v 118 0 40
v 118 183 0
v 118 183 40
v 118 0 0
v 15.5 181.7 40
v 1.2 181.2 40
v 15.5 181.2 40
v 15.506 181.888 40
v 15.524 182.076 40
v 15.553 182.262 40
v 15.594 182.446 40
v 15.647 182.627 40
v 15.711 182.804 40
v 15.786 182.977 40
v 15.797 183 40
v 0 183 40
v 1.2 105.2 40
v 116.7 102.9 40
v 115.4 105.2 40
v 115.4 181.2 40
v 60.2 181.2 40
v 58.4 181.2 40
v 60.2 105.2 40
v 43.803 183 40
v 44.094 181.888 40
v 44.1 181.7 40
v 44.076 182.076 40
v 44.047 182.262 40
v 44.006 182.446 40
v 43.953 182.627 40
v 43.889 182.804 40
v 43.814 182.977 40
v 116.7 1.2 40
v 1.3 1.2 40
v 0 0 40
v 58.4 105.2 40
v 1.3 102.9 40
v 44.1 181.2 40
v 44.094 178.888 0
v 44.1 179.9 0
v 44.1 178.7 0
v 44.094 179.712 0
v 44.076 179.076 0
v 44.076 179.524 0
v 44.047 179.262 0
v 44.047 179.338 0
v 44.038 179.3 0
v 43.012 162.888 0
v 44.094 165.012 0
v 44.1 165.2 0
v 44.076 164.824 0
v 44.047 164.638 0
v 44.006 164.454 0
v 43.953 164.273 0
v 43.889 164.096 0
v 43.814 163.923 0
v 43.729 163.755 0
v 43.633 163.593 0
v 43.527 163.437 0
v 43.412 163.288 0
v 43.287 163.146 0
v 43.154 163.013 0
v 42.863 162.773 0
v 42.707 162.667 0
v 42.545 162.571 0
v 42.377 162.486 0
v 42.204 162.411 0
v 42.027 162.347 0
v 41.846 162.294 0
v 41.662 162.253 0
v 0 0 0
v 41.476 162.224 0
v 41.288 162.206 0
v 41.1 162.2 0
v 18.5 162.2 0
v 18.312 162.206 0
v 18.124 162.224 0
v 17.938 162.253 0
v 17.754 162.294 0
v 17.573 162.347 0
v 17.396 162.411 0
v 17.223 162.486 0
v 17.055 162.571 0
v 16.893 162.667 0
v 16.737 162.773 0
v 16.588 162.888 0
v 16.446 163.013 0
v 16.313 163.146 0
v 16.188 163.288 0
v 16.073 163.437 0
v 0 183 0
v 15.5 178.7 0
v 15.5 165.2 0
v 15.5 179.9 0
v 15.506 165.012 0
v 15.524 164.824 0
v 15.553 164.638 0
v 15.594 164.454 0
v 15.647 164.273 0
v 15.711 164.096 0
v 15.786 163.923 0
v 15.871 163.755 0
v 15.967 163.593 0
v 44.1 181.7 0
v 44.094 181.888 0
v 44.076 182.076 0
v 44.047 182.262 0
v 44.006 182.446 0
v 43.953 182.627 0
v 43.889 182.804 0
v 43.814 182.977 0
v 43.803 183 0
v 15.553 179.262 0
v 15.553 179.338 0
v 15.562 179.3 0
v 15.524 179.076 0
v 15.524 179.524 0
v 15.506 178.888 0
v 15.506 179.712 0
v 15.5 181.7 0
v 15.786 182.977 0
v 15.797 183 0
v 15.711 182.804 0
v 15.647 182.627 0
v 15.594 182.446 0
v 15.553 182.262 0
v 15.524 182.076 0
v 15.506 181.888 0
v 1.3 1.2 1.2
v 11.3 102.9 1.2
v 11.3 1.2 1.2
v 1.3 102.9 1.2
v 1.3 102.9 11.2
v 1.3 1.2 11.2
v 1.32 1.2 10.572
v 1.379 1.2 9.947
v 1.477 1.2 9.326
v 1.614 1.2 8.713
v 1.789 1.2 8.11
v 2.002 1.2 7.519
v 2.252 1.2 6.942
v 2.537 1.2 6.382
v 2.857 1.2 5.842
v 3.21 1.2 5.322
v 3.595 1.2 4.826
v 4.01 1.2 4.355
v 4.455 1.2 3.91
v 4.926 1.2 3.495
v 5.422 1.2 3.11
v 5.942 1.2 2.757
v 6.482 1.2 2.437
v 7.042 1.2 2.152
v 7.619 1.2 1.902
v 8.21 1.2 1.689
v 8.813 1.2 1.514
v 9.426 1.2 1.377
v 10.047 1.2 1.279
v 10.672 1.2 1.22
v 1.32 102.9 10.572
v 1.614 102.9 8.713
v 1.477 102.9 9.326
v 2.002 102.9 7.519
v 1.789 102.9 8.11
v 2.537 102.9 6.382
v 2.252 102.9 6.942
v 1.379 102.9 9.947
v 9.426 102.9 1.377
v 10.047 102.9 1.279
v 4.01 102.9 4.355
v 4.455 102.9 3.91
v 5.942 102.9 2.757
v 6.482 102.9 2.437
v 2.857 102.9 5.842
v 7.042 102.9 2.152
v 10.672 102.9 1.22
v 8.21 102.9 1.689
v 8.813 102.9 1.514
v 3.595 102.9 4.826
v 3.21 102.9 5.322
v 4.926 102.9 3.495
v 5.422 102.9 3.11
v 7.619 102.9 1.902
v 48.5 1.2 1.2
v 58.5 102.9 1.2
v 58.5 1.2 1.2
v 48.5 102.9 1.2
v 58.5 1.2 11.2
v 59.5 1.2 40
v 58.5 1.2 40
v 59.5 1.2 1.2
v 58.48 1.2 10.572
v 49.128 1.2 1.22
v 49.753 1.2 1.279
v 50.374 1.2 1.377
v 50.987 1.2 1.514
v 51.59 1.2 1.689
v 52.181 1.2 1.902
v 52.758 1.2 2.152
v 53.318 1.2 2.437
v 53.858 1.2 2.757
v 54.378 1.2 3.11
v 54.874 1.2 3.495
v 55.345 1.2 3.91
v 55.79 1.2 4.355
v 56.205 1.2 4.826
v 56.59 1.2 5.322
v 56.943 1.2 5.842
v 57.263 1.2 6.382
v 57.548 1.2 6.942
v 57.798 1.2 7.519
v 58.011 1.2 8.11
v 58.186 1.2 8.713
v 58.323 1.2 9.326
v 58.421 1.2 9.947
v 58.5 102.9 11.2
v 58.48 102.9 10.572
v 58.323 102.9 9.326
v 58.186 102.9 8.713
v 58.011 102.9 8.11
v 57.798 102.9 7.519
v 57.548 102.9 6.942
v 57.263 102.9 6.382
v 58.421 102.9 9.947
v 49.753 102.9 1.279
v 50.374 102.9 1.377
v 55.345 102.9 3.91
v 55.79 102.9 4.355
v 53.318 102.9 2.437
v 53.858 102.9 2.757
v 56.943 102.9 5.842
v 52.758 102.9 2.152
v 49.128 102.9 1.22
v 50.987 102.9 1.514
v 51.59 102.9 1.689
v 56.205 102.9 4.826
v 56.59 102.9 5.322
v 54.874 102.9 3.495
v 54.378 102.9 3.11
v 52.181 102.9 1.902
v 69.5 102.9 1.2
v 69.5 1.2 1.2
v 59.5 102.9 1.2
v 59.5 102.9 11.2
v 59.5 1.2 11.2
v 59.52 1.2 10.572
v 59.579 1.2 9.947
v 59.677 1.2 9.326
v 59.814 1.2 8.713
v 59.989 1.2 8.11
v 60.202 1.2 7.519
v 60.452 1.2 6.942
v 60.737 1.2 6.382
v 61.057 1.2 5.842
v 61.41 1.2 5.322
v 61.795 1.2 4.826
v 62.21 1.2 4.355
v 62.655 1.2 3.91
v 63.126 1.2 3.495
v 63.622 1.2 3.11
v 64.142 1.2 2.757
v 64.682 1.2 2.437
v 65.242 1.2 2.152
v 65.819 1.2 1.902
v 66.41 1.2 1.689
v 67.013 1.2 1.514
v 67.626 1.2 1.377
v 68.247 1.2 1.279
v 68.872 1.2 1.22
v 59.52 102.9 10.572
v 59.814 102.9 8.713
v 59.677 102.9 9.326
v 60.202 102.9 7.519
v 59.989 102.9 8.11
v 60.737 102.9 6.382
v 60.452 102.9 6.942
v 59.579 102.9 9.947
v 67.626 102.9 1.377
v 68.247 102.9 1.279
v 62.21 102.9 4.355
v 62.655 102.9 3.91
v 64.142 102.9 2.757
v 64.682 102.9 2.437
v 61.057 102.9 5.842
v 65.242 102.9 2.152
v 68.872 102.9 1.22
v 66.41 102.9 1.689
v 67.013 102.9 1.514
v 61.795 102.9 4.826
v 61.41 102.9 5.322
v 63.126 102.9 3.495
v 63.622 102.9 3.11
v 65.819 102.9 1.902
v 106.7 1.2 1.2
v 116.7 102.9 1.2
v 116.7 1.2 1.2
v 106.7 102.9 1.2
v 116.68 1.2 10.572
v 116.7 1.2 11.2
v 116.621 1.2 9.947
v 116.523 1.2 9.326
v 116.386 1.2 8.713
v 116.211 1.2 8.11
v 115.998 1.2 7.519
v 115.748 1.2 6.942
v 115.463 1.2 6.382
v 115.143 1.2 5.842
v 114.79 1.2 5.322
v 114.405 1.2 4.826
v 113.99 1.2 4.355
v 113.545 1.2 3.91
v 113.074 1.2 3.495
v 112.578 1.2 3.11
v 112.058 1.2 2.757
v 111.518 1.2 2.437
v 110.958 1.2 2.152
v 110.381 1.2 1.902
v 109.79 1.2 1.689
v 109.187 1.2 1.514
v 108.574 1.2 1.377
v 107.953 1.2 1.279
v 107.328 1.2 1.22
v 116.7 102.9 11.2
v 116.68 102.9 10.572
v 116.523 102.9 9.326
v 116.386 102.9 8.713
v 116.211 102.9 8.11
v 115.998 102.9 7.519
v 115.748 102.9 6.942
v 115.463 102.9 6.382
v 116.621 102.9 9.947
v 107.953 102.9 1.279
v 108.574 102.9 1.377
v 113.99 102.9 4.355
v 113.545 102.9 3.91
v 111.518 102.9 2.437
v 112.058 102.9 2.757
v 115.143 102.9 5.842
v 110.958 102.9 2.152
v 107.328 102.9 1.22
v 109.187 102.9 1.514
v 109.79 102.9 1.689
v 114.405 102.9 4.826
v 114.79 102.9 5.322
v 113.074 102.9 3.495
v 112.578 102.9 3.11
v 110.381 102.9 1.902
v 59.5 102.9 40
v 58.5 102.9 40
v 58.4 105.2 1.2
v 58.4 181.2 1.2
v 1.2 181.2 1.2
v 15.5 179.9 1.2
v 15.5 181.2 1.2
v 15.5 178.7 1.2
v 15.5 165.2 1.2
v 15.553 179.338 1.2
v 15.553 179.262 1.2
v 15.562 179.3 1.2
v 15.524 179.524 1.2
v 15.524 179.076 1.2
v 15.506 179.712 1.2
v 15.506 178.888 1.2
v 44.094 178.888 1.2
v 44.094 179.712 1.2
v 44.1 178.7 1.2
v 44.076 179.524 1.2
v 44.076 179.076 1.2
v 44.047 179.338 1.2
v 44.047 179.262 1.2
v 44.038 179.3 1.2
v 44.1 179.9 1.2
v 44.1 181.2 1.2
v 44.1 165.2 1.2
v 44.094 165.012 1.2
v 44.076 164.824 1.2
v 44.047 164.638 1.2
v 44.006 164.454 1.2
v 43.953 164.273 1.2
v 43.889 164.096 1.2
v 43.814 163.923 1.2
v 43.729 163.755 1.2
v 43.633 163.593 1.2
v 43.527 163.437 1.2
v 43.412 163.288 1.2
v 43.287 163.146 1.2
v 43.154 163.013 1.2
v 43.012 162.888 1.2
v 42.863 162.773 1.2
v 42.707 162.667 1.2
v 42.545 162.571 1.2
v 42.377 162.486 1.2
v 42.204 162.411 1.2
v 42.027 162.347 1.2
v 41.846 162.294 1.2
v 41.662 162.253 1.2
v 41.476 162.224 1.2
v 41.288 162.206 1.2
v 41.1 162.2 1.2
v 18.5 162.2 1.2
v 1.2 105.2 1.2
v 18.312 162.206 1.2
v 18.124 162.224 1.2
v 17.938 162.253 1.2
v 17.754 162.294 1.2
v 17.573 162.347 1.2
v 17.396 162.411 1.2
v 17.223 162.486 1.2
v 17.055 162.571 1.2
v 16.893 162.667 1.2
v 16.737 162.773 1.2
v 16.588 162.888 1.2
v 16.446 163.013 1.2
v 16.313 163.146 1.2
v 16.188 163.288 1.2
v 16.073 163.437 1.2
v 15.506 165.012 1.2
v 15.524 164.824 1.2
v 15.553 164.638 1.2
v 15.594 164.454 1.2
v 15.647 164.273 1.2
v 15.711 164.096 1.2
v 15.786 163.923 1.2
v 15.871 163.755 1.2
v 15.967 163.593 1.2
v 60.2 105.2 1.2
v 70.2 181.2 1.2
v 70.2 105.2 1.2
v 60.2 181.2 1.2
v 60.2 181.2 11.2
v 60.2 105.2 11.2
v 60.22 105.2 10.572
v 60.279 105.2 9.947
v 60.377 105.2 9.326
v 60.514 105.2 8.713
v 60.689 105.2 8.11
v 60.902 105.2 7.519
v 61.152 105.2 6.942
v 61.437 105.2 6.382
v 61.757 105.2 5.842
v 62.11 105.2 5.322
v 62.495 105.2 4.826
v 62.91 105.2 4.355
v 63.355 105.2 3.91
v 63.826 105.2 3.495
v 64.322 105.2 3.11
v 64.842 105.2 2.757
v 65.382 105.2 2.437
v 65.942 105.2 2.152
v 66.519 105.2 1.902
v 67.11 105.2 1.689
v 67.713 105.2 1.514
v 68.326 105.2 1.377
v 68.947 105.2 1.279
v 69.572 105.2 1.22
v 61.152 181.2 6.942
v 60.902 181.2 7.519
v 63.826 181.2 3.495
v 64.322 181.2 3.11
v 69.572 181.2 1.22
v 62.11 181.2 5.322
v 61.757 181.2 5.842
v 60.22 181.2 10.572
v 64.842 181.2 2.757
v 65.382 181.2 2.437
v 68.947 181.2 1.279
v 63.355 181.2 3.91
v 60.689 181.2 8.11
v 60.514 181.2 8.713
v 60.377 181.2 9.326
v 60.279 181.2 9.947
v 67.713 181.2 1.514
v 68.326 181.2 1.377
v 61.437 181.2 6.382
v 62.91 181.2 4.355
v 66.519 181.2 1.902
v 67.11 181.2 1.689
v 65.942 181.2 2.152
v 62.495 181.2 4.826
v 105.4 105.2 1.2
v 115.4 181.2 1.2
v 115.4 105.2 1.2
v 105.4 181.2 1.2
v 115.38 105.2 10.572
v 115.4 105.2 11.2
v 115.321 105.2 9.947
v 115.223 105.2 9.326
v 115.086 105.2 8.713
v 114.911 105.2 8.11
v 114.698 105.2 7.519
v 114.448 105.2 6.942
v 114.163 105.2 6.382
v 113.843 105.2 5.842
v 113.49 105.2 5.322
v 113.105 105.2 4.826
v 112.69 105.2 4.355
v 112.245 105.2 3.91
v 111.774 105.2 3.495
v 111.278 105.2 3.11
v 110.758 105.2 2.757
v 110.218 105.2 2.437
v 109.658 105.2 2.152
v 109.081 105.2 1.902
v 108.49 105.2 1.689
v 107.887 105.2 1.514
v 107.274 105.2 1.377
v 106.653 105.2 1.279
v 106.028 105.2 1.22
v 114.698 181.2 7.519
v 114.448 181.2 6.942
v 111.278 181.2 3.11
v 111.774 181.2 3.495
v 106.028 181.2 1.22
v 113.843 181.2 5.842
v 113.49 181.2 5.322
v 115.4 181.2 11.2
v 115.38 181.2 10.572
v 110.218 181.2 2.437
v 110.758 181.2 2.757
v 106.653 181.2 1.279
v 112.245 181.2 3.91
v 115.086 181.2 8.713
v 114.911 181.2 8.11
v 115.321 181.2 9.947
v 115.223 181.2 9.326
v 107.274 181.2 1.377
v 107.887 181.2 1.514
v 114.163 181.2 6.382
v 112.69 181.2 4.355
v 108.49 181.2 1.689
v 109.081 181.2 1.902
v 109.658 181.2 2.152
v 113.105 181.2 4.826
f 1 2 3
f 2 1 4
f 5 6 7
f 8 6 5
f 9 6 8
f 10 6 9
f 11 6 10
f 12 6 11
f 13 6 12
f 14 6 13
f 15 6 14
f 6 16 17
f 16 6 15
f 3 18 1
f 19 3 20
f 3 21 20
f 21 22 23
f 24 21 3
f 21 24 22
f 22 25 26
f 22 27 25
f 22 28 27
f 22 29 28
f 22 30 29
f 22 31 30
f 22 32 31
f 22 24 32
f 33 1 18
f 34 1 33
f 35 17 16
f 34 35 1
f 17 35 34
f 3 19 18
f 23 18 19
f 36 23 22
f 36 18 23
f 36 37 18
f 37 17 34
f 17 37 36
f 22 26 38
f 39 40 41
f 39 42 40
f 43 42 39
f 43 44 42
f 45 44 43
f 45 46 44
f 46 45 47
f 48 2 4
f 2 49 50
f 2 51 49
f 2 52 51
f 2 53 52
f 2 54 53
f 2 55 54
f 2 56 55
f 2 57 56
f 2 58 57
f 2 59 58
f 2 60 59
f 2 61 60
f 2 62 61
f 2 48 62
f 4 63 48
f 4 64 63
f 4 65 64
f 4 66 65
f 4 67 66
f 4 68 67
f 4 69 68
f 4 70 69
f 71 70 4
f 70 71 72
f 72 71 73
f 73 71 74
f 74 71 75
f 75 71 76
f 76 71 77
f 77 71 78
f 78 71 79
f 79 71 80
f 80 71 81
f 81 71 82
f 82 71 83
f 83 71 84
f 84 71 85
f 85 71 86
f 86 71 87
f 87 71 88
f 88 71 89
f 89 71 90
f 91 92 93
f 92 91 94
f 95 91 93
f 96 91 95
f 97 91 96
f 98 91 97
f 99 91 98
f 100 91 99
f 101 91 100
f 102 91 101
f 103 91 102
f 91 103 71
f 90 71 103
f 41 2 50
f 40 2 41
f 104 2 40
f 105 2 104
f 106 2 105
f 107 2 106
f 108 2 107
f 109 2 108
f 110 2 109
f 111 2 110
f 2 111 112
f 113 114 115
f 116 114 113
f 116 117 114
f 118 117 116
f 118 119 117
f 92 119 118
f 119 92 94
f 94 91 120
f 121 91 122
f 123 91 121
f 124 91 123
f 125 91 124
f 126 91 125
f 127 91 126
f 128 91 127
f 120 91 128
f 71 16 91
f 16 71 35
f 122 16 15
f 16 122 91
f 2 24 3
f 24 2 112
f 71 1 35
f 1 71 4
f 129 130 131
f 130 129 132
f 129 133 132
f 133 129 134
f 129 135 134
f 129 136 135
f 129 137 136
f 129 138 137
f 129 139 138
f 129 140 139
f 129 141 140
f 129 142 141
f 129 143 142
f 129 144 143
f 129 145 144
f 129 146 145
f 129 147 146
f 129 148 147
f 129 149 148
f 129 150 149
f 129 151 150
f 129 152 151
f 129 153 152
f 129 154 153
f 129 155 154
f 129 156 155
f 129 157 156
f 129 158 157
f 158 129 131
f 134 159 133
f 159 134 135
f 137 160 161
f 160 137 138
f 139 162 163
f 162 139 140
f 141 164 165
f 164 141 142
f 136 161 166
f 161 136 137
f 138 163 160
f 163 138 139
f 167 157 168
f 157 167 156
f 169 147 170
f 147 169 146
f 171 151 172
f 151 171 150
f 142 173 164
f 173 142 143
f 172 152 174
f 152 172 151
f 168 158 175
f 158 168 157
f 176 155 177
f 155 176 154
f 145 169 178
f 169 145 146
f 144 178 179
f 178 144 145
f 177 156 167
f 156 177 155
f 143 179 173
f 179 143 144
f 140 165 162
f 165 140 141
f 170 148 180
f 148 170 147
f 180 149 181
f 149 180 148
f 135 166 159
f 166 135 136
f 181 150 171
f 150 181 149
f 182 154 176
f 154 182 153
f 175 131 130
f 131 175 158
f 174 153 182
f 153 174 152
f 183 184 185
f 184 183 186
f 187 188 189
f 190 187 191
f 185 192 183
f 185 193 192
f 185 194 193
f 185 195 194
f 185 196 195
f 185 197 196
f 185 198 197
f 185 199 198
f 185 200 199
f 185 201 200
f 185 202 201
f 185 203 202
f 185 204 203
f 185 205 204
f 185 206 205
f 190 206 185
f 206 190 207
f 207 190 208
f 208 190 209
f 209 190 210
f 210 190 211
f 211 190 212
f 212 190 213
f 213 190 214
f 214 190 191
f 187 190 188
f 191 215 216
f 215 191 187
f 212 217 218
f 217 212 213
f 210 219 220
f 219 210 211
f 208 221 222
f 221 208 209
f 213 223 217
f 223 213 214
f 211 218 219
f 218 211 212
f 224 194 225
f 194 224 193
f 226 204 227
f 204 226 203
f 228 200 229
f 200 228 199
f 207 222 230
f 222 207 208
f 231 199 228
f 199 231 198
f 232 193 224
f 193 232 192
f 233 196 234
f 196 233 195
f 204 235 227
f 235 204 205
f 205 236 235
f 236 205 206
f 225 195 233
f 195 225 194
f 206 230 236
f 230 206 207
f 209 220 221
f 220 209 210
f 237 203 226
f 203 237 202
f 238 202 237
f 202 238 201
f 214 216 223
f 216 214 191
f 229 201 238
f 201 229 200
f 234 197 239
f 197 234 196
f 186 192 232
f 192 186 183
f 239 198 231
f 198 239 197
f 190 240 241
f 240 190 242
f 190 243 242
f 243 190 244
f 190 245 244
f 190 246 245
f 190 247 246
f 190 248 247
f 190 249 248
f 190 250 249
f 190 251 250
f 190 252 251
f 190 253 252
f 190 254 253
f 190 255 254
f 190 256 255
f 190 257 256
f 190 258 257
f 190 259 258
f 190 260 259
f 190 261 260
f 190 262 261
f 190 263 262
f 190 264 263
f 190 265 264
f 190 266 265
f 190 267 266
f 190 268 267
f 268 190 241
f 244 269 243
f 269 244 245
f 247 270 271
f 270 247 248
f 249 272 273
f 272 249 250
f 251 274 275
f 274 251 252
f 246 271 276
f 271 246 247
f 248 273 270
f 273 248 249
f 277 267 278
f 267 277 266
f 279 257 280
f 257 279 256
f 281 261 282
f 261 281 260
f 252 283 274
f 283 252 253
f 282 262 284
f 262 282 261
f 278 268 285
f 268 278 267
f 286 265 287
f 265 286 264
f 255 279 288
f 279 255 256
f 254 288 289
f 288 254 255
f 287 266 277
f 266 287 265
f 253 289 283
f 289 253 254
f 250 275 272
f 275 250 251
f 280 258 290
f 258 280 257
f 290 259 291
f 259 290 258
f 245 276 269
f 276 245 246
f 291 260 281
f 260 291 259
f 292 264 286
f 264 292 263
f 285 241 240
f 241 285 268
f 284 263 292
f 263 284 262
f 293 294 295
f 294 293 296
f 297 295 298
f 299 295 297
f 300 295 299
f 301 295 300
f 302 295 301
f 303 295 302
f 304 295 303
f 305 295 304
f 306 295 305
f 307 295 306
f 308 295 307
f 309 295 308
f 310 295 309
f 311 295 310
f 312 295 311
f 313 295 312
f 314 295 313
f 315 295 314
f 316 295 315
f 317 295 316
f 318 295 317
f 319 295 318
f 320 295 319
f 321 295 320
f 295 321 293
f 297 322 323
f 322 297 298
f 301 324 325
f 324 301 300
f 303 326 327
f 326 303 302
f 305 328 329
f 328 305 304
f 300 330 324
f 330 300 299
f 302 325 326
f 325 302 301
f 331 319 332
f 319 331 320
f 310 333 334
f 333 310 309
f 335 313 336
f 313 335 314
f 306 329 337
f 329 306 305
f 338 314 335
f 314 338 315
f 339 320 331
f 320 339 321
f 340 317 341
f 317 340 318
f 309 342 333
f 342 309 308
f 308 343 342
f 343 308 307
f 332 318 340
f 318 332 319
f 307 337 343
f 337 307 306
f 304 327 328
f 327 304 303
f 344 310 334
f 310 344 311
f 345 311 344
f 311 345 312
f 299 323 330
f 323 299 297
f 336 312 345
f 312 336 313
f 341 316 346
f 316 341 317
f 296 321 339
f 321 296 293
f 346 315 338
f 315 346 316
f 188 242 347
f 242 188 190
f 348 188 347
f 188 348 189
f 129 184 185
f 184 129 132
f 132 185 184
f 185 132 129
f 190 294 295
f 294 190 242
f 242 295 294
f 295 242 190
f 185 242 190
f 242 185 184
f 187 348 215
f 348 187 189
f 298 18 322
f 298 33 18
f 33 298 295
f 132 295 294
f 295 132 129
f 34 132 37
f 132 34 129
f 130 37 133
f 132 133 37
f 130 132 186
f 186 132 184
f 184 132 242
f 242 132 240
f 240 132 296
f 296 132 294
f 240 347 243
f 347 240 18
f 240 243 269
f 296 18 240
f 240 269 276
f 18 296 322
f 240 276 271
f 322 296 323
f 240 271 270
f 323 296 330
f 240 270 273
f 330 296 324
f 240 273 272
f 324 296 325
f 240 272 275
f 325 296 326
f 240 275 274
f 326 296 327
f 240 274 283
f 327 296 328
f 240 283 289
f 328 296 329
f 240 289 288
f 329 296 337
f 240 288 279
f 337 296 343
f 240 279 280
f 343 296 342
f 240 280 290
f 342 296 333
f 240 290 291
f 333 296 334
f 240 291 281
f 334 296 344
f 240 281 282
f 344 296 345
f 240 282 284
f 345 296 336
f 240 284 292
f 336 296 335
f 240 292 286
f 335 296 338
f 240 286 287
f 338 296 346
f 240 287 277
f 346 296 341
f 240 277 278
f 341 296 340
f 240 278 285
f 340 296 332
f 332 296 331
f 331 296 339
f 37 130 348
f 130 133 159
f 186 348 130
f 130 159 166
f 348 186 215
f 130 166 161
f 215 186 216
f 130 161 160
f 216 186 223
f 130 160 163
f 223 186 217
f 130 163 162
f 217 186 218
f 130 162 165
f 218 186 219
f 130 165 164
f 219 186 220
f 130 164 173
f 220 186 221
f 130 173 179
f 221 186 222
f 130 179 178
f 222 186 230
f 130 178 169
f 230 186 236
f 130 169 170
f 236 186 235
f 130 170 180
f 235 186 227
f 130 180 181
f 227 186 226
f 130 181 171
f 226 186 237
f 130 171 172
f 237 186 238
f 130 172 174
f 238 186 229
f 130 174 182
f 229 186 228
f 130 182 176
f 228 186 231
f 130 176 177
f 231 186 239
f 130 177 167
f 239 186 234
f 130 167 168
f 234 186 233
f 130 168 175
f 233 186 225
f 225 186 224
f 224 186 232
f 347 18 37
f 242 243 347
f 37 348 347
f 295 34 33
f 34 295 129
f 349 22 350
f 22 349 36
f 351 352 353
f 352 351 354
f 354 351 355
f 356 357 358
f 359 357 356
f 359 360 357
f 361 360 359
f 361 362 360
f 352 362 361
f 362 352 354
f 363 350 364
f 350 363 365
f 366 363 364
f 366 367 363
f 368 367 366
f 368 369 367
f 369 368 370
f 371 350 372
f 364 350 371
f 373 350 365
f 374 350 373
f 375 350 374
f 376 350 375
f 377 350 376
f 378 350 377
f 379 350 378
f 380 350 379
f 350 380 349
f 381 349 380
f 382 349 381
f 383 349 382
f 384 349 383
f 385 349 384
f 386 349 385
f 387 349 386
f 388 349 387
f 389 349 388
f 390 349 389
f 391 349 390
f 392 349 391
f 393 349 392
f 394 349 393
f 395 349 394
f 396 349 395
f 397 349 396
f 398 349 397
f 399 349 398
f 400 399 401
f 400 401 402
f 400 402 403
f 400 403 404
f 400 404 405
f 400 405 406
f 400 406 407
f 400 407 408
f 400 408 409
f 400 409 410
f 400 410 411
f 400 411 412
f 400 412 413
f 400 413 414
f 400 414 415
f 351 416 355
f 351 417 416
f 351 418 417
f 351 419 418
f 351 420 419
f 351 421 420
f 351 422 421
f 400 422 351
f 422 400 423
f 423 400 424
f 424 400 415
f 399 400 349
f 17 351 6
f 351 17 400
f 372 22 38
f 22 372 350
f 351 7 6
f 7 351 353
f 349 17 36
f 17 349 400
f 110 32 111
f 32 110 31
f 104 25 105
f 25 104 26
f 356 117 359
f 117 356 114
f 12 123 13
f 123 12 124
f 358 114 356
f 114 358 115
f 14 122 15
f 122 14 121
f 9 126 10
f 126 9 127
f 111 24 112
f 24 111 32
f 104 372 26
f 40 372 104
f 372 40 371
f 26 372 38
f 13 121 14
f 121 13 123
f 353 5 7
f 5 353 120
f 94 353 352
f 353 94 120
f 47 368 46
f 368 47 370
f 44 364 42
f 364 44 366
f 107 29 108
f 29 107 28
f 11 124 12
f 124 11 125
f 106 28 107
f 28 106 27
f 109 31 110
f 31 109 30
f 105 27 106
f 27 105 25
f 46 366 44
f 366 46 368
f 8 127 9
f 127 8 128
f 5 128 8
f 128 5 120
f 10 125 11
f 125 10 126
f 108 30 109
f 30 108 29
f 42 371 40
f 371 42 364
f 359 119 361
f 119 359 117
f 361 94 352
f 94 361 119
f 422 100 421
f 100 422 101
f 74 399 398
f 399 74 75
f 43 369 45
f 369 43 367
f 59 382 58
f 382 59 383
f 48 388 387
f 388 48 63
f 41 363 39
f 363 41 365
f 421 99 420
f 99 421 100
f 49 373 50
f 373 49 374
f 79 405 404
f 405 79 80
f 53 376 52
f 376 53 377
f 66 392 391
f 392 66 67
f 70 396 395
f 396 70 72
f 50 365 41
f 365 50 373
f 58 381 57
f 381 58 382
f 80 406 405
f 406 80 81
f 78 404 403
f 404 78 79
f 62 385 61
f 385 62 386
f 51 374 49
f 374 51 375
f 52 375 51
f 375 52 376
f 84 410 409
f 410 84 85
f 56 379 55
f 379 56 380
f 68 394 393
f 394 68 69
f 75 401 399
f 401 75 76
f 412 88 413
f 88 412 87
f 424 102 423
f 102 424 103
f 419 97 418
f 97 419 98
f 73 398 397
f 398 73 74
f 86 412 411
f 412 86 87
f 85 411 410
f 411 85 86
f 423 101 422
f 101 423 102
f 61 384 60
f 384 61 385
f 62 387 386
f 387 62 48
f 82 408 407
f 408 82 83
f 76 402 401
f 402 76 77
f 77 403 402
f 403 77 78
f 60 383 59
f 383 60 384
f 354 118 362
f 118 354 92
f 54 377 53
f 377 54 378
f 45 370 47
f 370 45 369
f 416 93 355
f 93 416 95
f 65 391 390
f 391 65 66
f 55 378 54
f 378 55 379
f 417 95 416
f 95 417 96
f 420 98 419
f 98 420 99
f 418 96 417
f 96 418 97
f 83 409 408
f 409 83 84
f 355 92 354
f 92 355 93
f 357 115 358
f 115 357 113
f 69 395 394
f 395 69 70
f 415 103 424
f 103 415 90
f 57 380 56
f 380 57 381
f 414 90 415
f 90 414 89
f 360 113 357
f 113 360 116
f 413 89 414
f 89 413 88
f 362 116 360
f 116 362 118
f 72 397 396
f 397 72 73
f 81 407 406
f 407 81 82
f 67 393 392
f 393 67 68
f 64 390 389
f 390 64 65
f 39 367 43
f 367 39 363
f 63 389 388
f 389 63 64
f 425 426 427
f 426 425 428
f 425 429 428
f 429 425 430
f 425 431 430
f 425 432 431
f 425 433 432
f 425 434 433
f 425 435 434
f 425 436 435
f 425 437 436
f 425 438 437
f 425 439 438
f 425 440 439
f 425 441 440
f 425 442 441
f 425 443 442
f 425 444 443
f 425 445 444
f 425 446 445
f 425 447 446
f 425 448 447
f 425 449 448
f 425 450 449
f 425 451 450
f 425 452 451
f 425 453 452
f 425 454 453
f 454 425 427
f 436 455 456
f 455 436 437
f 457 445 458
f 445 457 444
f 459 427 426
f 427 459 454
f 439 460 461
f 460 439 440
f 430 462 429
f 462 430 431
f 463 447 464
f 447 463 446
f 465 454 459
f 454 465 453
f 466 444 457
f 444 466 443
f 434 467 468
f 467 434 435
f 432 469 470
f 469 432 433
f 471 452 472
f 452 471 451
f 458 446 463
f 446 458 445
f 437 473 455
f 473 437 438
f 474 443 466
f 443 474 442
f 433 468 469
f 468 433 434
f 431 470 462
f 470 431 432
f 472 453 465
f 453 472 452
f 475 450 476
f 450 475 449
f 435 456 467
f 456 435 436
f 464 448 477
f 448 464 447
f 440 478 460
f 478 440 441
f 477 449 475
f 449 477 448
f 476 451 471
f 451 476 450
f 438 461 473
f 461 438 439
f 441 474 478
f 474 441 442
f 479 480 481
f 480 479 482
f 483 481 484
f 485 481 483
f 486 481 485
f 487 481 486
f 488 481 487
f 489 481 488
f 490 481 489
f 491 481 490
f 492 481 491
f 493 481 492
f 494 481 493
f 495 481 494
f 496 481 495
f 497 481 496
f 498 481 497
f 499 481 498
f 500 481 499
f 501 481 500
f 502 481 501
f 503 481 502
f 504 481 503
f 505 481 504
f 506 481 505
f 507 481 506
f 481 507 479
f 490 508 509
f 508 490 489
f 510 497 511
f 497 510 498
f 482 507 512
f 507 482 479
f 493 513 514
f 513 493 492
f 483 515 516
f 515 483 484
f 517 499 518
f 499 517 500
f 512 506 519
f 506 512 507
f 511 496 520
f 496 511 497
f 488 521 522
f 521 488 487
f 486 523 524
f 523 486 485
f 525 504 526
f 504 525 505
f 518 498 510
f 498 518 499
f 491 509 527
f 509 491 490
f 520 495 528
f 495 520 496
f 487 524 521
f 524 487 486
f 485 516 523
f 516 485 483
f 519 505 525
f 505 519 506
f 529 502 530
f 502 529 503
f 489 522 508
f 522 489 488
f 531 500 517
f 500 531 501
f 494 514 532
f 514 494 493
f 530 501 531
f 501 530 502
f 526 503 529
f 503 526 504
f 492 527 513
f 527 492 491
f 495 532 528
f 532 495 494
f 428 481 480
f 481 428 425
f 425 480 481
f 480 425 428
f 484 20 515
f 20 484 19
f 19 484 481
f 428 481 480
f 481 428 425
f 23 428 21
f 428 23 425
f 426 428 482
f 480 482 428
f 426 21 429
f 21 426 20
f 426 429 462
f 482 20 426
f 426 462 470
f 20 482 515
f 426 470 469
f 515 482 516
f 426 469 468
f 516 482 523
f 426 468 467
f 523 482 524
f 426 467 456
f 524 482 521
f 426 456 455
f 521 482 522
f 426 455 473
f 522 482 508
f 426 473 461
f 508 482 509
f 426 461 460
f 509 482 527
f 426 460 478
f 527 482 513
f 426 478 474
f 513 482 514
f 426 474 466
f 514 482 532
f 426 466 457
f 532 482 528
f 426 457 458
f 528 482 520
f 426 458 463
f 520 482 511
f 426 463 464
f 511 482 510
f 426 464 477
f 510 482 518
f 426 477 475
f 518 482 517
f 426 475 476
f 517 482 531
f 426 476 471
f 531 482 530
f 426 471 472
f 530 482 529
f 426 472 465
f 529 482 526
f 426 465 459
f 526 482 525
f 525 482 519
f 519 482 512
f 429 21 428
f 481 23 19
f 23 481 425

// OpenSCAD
include <boardgame_insert_toolkit_lib.2.scad>;

// determines whether lids are output.
g_b_print_lid = true;

// determines whether boxes are output.
g_b_print_box = true;

// Focus on one box
g_isolated_print_box = "";

// Used to visualize how all of the boxes fit together.
g_b_visualization = false;

// this is the outer wall thickness.
//Default = 1.5mm
g_wall_thickness = 1.2;

// The tolerance value is extra space put between planes of the lid and box that fit together.
// Increase the tolerance to loosen the fit and decrease it to tighten it.
//
// Note that the tolerance is applied exclusively to the lid.
// So if the lid is too tight or too loose, change this value ( up for looser fit, down for tighter fit ) and
// you only need to reprint the lid.
//
// The exception is the stackable box, where the bottom of the box is the lid of the box below,
// in which case the tolerance also affects that box bottom.
//
g_tolerance = 0.15;

// This adjusts the position of the lid detents downward.
// The larger the value, the bigger the gap between the lid and the box.
g_tolerance_detents_pos = 0.1;

aw_box_x = 118.0; // 284 / 2
aw_box_y = 183.0; //
aw_box_z = 40.0;

aw_compartment_size_x = (aw_box_x - 3 * g_wall_thickness) / 2;
aw_compartment_size_y = (aw_box_y - 3 * g_wall_thickness) / 2;

data =
  [
    [
      "3x3 box",
      [
        [ BOX_SIZE_XYZ, [aw_box_x, aw_box_y, aw_box_z] ],
        [ BOX_NO_LID_B, t],
        [
          BOX_COMPONENT,
          [
            [ CMP_SHAPE, FILLET ],
            [ CMP_NUM_COMPARTMENTS_XY, [2, 1] ],
            [
              CMP_COMPARTMENT_SIZE_XYZ,
              [
                aw_compartment_size_x,
                aw_compartment_size_y + 12,
                aw_box_z - 1 * g_wall_thickness
              ]
            ],
            [ POSITION_XY, [ CENTER, 0 ] ],
          ]
        ],
        [
          BOX_COMPONENT,
          [
            //[ CMP_SHAPE, FILLET ],
            [ CMP_NUM_COMPARTMENTS_XY, [1, 1] ],
            [
              CMP_COMPARTMENT_SIZE_XYZ,
              [
                aw_compartment_size_x,
                76, //aw_compartment_size_y,
                aw_box_z - 1 * g_wall_thickness
              ]
            ],
            [ POSITION_XY, [ 0, 104/*91*/ ] ],
            [ CMP_CUTOUT_SIDES_4B, [ f, t, f, f ] ]
          ]
        ],
        [
          BOX_COMPONENT,
          [
            [ CMP_SHAPE, FILLET ],
            [ CMP_NUM_COMPARTMENTS_XY, [1, 1] ],
            [
              CMP_COMPARTMENT_SIZE_XYZ,
              [
                aw_compartment_size_x - 2,
                76, //aw_compartment_size_y,
                aw_box_z - 1 * g_wall_thickness
              ]
            ],
            [ POSITION_XY, [ 59, 104/*91*/ ] ],
            //[ CMP_CUTOUT_SIDES_4B, [ f, t, f, f ] ]
          ]
        ],
      ]
    ]
  ];


MakeAll();
